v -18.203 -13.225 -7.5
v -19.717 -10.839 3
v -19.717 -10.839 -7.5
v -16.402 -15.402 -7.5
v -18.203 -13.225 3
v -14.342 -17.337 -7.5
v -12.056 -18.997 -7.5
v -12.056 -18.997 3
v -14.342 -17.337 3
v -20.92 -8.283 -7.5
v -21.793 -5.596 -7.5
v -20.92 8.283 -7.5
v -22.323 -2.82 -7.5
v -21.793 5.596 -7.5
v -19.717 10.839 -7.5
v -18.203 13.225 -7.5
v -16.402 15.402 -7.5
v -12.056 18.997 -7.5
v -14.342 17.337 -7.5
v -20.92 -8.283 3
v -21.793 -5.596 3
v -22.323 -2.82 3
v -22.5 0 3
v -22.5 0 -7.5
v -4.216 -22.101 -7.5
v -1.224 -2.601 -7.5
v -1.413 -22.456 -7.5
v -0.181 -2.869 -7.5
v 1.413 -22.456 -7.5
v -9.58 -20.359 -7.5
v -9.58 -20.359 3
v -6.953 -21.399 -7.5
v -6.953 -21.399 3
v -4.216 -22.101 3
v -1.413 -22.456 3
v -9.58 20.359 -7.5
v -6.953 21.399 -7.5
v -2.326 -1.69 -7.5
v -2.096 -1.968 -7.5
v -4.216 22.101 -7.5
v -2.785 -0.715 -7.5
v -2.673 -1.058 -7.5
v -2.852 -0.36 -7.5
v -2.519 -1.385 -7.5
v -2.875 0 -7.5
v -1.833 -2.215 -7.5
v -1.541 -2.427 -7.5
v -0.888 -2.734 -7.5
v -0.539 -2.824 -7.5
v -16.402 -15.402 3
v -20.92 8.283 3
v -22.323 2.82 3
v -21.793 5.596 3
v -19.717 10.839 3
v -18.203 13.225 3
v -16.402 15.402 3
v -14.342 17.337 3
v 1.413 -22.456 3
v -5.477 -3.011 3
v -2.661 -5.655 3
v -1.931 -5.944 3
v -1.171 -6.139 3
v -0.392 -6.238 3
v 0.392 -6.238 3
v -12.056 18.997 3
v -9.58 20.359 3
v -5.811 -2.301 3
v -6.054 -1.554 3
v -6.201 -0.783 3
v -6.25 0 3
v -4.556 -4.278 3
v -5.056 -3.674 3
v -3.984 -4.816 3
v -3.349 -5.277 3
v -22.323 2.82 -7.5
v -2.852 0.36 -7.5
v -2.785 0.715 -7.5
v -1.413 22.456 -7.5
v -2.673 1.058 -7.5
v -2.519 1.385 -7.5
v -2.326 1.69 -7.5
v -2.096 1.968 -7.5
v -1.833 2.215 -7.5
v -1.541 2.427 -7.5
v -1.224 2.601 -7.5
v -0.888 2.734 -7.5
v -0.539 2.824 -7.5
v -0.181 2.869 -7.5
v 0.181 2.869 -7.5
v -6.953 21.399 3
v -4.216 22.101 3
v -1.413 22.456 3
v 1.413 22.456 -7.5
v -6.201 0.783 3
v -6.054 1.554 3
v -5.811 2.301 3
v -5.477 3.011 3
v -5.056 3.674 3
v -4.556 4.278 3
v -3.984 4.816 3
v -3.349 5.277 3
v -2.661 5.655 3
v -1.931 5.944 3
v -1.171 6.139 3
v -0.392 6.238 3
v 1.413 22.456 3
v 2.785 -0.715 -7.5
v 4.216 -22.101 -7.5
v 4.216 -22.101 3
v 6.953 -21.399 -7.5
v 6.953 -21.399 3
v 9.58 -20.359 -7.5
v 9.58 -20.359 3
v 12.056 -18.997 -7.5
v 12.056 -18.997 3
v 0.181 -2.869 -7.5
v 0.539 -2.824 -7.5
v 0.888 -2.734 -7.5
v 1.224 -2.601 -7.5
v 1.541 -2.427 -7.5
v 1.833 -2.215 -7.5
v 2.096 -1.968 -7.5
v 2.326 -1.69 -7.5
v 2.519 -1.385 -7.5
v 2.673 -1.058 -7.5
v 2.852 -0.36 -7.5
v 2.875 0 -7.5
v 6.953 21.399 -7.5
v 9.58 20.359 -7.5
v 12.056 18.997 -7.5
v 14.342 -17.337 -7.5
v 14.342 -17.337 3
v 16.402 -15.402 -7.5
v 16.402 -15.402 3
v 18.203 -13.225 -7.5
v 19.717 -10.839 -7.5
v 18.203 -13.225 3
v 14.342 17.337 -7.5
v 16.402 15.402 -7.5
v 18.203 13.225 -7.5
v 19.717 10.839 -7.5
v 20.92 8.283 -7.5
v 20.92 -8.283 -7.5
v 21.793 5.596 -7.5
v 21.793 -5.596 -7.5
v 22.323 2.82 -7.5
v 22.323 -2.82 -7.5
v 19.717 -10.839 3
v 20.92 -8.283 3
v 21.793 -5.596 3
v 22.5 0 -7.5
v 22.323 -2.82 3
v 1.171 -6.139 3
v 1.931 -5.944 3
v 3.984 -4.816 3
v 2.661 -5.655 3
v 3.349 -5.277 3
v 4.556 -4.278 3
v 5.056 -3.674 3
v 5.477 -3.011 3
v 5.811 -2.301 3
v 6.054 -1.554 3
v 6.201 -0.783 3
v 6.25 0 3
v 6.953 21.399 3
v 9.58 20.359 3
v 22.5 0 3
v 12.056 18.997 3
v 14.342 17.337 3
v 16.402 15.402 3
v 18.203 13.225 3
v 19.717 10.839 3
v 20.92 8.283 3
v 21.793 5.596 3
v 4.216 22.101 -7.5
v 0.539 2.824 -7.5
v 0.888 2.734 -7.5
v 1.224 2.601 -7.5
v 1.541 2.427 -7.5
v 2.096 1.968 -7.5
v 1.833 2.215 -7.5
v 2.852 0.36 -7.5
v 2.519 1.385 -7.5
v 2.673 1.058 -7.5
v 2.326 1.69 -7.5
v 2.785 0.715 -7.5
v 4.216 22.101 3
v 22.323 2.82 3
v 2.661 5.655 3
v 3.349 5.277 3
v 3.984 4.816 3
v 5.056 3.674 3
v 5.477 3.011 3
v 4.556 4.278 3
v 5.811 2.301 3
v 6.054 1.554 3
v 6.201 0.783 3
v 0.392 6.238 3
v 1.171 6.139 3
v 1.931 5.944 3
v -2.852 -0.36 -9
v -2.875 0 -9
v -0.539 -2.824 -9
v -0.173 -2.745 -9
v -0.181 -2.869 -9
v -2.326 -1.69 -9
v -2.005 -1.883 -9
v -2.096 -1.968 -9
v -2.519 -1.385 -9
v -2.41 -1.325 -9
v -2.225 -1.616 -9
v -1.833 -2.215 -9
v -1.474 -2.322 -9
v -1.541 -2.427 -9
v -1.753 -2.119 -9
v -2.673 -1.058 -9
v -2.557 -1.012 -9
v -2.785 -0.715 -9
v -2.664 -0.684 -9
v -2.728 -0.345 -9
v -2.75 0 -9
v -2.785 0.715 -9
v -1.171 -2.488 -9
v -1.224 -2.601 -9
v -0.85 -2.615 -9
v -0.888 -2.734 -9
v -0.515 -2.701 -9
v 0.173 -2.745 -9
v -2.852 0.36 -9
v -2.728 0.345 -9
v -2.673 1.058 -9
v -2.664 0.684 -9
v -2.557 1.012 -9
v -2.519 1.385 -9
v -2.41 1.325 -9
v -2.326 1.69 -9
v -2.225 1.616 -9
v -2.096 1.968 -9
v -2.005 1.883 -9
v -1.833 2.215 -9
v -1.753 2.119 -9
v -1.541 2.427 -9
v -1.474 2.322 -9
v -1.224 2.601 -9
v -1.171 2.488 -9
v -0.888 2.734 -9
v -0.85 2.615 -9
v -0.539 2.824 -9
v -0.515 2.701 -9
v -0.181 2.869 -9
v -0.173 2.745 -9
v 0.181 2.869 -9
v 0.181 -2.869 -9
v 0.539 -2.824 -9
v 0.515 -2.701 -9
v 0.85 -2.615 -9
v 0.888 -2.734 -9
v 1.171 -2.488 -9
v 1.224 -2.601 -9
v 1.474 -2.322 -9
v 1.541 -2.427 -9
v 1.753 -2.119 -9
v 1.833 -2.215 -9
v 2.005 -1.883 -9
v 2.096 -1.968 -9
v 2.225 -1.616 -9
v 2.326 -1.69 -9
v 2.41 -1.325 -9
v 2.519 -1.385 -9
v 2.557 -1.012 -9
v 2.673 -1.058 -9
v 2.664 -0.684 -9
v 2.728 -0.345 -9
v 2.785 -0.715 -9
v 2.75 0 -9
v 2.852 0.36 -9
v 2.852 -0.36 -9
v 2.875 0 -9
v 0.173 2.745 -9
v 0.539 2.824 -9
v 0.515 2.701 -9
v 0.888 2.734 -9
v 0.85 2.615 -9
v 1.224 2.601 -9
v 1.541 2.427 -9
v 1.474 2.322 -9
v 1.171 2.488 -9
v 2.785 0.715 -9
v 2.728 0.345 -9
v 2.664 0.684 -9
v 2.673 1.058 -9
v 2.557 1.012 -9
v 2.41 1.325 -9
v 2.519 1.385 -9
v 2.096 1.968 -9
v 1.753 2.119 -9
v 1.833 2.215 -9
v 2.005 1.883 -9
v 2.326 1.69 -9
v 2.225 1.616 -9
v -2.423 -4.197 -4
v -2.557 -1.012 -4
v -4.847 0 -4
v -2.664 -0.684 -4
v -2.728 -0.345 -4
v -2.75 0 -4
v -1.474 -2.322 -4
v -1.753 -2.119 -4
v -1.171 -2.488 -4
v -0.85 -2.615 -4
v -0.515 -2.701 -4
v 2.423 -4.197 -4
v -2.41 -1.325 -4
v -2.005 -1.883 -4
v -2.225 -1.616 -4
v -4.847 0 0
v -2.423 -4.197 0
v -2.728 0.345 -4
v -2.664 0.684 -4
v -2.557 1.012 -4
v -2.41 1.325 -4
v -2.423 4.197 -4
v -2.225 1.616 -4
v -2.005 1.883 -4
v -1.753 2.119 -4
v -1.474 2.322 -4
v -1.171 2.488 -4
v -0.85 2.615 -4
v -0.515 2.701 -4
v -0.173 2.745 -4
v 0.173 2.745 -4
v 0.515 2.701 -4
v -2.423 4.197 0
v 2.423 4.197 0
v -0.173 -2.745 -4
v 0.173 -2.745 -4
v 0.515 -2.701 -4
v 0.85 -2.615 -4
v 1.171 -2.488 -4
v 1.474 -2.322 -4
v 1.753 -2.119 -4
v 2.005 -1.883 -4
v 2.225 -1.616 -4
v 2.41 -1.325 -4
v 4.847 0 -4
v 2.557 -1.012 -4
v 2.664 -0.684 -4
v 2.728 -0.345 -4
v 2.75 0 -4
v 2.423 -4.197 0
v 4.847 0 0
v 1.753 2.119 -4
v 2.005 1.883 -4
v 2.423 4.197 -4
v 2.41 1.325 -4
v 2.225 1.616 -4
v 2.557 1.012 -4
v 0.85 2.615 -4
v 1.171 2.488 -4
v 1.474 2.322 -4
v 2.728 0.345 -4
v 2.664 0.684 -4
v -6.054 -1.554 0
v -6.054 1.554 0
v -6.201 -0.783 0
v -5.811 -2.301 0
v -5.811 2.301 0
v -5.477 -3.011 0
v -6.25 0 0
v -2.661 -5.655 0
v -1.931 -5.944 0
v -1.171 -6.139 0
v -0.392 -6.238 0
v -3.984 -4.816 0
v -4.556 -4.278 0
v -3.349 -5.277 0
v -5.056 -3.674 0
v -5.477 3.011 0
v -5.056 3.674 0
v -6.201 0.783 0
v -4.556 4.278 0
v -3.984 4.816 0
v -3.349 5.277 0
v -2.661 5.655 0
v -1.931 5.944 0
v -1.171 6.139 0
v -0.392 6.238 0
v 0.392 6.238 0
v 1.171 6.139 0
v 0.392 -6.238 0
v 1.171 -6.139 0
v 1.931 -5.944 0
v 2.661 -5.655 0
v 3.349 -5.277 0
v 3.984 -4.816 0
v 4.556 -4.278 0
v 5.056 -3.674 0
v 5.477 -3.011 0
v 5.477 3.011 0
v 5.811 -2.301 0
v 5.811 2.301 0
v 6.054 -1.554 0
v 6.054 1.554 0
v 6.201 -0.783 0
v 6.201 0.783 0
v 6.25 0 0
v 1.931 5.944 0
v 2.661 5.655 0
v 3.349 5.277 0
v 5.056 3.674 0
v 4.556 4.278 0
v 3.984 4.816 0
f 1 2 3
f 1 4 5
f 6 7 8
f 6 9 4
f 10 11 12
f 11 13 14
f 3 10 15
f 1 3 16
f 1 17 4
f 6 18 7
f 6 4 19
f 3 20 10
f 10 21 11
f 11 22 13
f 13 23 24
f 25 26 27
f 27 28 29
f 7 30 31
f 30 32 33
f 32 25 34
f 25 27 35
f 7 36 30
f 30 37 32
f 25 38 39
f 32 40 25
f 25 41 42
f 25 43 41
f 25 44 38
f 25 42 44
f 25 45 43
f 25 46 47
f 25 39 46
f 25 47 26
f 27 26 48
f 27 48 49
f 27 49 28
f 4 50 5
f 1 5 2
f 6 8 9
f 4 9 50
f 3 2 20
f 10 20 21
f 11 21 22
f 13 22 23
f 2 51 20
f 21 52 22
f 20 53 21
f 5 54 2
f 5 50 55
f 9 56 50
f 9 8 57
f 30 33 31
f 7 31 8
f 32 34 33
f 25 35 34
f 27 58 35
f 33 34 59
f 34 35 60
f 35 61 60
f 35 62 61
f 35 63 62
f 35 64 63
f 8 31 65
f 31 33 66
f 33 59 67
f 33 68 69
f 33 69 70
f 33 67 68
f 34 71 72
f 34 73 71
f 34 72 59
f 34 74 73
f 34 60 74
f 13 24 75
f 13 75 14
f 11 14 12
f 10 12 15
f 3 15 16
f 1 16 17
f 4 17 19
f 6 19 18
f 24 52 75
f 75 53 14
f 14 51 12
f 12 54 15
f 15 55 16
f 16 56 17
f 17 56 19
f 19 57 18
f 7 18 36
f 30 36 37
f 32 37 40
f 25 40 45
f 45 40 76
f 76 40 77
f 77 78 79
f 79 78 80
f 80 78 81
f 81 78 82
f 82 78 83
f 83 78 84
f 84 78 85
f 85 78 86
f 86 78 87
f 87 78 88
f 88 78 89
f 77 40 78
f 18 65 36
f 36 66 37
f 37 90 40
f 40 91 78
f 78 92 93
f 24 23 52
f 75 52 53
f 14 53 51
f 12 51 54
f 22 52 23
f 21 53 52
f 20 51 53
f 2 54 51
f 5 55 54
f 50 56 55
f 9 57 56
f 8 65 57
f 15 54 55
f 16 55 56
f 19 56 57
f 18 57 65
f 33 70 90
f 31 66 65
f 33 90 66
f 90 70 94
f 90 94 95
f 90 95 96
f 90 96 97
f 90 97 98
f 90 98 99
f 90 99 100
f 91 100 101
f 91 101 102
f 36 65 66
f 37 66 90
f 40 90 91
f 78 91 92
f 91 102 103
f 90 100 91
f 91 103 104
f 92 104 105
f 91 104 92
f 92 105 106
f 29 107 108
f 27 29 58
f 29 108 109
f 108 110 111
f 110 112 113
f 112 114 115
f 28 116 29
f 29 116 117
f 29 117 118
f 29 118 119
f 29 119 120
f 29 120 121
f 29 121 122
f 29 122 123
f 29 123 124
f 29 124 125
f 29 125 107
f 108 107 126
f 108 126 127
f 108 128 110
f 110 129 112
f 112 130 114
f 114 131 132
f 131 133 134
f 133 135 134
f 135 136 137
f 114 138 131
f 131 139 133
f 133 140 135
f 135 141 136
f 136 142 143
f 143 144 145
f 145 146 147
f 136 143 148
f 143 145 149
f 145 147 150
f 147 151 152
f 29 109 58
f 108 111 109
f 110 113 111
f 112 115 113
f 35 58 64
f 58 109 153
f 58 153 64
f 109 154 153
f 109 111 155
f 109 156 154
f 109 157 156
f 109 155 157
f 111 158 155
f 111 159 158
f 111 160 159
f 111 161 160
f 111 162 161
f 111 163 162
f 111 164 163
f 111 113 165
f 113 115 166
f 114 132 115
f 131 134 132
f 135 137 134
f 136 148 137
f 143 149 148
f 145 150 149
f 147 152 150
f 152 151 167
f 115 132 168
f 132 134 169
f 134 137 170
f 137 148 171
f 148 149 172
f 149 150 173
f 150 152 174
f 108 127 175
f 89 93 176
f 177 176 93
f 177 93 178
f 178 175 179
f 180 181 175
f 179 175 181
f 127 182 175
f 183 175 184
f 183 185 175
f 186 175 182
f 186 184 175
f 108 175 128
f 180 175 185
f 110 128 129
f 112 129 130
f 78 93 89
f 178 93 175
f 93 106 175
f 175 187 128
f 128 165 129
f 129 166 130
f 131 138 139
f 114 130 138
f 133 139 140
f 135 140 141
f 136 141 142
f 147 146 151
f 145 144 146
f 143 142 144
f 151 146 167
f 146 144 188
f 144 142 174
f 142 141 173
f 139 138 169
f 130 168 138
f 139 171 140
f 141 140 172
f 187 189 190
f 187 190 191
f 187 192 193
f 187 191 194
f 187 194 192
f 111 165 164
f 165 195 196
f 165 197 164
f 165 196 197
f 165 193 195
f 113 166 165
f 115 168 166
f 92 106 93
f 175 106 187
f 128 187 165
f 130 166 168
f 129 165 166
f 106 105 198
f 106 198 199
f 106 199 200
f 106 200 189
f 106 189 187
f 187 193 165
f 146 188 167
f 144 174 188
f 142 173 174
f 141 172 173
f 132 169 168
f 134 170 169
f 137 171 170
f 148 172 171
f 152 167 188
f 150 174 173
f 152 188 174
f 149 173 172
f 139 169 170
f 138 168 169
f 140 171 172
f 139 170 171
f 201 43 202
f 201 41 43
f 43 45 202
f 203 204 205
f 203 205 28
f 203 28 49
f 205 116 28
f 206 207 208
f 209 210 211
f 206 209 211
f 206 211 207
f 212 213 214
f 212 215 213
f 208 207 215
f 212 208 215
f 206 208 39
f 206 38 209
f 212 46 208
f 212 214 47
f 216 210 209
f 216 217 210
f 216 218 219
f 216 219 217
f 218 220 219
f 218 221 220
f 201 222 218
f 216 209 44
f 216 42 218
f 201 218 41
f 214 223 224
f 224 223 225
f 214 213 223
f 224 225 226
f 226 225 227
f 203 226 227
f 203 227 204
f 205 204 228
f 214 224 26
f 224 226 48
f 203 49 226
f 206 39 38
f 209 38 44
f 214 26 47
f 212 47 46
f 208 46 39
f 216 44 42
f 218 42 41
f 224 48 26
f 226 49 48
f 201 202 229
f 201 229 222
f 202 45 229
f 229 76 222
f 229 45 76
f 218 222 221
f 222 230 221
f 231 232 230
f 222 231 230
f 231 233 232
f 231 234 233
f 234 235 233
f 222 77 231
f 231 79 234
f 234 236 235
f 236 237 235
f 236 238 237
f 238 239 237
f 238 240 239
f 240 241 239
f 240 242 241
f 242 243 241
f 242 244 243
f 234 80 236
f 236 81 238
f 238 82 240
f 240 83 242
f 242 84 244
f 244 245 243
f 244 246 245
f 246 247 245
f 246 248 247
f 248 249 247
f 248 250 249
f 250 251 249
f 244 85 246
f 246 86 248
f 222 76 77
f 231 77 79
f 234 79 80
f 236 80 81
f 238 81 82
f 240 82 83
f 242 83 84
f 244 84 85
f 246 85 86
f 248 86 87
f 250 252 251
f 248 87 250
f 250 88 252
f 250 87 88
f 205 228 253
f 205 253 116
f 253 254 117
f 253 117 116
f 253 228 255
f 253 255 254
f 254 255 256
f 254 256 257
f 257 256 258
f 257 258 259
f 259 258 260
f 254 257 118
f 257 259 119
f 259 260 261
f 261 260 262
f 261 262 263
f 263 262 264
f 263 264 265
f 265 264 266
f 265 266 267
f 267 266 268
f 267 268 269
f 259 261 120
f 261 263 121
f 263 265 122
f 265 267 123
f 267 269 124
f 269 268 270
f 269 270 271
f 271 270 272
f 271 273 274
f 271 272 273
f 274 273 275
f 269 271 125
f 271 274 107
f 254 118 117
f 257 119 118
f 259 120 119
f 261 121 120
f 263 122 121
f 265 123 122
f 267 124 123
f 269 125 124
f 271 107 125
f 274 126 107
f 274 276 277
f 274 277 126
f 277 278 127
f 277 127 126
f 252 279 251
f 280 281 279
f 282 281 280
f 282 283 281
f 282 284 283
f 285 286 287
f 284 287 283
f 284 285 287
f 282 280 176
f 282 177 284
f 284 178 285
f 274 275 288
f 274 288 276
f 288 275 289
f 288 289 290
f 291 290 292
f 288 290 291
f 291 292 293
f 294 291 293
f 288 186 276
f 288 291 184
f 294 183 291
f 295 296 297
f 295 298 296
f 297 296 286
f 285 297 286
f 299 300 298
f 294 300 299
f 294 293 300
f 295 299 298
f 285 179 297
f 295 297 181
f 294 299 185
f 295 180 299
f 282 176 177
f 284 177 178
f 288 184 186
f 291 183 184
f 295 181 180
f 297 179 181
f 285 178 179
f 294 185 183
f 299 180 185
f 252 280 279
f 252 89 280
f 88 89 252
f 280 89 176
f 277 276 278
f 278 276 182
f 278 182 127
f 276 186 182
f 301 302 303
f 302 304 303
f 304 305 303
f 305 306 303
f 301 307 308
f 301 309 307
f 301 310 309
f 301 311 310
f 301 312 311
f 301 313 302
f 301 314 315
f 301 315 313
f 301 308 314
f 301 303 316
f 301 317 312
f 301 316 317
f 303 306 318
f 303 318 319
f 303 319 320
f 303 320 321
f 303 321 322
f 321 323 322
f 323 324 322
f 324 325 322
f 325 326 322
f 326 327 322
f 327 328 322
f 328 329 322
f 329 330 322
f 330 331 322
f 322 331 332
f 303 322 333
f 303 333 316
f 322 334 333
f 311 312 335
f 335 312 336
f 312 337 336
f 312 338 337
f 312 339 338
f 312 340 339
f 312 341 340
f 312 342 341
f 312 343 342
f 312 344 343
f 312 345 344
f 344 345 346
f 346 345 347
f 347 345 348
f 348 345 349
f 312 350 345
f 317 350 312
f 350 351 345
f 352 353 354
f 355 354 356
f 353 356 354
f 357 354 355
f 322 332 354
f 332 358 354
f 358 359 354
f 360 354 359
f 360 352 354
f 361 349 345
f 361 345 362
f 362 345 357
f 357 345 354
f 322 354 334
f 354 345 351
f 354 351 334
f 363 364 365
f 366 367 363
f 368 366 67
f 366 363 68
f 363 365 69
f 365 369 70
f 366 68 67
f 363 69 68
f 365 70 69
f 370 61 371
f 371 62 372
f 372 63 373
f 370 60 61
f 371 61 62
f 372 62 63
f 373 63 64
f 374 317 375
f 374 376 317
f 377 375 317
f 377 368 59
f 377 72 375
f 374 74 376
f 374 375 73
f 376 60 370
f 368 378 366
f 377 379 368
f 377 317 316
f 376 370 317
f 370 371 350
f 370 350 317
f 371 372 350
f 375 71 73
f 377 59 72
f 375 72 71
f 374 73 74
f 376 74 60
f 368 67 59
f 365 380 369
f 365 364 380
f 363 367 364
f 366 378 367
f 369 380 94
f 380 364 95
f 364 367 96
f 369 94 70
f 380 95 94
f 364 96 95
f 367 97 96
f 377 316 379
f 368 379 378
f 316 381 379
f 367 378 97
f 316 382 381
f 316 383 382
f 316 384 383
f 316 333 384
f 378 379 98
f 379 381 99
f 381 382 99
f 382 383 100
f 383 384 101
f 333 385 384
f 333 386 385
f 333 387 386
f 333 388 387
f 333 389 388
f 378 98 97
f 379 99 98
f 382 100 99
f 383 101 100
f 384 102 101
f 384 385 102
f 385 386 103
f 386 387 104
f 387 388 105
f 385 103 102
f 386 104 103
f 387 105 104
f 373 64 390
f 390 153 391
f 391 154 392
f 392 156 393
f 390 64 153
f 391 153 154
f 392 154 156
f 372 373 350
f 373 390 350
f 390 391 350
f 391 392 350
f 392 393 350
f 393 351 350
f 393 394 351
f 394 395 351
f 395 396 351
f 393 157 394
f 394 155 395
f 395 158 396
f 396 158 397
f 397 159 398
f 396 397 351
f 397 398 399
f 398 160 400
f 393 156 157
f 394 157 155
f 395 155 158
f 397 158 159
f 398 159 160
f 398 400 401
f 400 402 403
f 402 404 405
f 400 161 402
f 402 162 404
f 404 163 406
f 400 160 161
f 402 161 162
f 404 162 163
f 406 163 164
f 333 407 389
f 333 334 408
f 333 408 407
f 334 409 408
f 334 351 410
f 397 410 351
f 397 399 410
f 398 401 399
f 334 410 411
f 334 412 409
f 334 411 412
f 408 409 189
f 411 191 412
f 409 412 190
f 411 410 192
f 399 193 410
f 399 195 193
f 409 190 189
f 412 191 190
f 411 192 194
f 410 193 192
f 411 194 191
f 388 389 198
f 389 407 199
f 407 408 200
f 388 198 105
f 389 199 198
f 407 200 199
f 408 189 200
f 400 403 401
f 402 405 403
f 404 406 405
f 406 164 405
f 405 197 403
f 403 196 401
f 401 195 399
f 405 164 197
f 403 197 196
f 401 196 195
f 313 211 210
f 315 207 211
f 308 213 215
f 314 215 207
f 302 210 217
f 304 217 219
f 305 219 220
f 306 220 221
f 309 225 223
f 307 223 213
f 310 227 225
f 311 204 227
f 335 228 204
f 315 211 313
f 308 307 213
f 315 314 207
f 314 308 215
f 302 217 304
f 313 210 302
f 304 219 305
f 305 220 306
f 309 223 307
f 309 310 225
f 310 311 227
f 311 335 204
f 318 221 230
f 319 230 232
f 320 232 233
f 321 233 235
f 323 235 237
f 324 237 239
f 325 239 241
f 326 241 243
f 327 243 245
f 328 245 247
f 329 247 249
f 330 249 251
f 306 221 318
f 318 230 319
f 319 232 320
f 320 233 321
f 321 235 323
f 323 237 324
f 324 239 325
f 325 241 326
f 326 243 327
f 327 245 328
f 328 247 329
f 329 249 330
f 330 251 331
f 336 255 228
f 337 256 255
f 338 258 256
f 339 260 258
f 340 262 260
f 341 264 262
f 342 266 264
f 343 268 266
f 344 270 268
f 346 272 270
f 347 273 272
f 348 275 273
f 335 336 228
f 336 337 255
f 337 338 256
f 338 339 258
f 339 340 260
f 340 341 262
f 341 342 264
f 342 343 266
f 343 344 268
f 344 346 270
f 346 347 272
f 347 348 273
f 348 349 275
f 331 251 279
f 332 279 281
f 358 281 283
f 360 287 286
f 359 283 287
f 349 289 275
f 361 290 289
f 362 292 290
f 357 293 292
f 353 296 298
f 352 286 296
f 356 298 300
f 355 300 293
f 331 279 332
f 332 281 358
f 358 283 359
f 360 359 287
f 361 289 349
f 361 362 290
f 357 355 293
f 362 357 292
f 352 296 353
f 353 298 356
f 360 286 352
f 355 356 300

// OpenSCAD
$fn = 50;

difference() {
	union() {
		translate(v = [0, 0, -7.5]) {
			cylinder(h = 10.5, r = 22.5);
		}
		#translate(v = [0, 0, -9.0]) {
			cylinder(h = 9, r = 2.875);
		}
	}
	union() {
		translate(v = [0, 0, 0]) {
			rotate(a = [0, 0, 0]) {
				difference() {
					union() {
						translate(v = [0, 0, -4]) {
							linear_extrude(height = 4) {
								polygon(points = [[4.8468, 0.0], [2.4234000000000004, 4.197451927062417], [-2.423399999999999, 4.197451927062417], [-4.8468, 5.935618106107392e-16], [-2.423400000000002, -4.197451927062416], [2.423399999999997, -4.197451927062419]]);
							}
						}
					}
					union();
				}
			}
		}
		#cylinder(h = 3, r = 6.25);
		#translate(v = [0, 0, -100.0]) {
			cylinder(h = 200, r = 2.75);
		}
	}
}
